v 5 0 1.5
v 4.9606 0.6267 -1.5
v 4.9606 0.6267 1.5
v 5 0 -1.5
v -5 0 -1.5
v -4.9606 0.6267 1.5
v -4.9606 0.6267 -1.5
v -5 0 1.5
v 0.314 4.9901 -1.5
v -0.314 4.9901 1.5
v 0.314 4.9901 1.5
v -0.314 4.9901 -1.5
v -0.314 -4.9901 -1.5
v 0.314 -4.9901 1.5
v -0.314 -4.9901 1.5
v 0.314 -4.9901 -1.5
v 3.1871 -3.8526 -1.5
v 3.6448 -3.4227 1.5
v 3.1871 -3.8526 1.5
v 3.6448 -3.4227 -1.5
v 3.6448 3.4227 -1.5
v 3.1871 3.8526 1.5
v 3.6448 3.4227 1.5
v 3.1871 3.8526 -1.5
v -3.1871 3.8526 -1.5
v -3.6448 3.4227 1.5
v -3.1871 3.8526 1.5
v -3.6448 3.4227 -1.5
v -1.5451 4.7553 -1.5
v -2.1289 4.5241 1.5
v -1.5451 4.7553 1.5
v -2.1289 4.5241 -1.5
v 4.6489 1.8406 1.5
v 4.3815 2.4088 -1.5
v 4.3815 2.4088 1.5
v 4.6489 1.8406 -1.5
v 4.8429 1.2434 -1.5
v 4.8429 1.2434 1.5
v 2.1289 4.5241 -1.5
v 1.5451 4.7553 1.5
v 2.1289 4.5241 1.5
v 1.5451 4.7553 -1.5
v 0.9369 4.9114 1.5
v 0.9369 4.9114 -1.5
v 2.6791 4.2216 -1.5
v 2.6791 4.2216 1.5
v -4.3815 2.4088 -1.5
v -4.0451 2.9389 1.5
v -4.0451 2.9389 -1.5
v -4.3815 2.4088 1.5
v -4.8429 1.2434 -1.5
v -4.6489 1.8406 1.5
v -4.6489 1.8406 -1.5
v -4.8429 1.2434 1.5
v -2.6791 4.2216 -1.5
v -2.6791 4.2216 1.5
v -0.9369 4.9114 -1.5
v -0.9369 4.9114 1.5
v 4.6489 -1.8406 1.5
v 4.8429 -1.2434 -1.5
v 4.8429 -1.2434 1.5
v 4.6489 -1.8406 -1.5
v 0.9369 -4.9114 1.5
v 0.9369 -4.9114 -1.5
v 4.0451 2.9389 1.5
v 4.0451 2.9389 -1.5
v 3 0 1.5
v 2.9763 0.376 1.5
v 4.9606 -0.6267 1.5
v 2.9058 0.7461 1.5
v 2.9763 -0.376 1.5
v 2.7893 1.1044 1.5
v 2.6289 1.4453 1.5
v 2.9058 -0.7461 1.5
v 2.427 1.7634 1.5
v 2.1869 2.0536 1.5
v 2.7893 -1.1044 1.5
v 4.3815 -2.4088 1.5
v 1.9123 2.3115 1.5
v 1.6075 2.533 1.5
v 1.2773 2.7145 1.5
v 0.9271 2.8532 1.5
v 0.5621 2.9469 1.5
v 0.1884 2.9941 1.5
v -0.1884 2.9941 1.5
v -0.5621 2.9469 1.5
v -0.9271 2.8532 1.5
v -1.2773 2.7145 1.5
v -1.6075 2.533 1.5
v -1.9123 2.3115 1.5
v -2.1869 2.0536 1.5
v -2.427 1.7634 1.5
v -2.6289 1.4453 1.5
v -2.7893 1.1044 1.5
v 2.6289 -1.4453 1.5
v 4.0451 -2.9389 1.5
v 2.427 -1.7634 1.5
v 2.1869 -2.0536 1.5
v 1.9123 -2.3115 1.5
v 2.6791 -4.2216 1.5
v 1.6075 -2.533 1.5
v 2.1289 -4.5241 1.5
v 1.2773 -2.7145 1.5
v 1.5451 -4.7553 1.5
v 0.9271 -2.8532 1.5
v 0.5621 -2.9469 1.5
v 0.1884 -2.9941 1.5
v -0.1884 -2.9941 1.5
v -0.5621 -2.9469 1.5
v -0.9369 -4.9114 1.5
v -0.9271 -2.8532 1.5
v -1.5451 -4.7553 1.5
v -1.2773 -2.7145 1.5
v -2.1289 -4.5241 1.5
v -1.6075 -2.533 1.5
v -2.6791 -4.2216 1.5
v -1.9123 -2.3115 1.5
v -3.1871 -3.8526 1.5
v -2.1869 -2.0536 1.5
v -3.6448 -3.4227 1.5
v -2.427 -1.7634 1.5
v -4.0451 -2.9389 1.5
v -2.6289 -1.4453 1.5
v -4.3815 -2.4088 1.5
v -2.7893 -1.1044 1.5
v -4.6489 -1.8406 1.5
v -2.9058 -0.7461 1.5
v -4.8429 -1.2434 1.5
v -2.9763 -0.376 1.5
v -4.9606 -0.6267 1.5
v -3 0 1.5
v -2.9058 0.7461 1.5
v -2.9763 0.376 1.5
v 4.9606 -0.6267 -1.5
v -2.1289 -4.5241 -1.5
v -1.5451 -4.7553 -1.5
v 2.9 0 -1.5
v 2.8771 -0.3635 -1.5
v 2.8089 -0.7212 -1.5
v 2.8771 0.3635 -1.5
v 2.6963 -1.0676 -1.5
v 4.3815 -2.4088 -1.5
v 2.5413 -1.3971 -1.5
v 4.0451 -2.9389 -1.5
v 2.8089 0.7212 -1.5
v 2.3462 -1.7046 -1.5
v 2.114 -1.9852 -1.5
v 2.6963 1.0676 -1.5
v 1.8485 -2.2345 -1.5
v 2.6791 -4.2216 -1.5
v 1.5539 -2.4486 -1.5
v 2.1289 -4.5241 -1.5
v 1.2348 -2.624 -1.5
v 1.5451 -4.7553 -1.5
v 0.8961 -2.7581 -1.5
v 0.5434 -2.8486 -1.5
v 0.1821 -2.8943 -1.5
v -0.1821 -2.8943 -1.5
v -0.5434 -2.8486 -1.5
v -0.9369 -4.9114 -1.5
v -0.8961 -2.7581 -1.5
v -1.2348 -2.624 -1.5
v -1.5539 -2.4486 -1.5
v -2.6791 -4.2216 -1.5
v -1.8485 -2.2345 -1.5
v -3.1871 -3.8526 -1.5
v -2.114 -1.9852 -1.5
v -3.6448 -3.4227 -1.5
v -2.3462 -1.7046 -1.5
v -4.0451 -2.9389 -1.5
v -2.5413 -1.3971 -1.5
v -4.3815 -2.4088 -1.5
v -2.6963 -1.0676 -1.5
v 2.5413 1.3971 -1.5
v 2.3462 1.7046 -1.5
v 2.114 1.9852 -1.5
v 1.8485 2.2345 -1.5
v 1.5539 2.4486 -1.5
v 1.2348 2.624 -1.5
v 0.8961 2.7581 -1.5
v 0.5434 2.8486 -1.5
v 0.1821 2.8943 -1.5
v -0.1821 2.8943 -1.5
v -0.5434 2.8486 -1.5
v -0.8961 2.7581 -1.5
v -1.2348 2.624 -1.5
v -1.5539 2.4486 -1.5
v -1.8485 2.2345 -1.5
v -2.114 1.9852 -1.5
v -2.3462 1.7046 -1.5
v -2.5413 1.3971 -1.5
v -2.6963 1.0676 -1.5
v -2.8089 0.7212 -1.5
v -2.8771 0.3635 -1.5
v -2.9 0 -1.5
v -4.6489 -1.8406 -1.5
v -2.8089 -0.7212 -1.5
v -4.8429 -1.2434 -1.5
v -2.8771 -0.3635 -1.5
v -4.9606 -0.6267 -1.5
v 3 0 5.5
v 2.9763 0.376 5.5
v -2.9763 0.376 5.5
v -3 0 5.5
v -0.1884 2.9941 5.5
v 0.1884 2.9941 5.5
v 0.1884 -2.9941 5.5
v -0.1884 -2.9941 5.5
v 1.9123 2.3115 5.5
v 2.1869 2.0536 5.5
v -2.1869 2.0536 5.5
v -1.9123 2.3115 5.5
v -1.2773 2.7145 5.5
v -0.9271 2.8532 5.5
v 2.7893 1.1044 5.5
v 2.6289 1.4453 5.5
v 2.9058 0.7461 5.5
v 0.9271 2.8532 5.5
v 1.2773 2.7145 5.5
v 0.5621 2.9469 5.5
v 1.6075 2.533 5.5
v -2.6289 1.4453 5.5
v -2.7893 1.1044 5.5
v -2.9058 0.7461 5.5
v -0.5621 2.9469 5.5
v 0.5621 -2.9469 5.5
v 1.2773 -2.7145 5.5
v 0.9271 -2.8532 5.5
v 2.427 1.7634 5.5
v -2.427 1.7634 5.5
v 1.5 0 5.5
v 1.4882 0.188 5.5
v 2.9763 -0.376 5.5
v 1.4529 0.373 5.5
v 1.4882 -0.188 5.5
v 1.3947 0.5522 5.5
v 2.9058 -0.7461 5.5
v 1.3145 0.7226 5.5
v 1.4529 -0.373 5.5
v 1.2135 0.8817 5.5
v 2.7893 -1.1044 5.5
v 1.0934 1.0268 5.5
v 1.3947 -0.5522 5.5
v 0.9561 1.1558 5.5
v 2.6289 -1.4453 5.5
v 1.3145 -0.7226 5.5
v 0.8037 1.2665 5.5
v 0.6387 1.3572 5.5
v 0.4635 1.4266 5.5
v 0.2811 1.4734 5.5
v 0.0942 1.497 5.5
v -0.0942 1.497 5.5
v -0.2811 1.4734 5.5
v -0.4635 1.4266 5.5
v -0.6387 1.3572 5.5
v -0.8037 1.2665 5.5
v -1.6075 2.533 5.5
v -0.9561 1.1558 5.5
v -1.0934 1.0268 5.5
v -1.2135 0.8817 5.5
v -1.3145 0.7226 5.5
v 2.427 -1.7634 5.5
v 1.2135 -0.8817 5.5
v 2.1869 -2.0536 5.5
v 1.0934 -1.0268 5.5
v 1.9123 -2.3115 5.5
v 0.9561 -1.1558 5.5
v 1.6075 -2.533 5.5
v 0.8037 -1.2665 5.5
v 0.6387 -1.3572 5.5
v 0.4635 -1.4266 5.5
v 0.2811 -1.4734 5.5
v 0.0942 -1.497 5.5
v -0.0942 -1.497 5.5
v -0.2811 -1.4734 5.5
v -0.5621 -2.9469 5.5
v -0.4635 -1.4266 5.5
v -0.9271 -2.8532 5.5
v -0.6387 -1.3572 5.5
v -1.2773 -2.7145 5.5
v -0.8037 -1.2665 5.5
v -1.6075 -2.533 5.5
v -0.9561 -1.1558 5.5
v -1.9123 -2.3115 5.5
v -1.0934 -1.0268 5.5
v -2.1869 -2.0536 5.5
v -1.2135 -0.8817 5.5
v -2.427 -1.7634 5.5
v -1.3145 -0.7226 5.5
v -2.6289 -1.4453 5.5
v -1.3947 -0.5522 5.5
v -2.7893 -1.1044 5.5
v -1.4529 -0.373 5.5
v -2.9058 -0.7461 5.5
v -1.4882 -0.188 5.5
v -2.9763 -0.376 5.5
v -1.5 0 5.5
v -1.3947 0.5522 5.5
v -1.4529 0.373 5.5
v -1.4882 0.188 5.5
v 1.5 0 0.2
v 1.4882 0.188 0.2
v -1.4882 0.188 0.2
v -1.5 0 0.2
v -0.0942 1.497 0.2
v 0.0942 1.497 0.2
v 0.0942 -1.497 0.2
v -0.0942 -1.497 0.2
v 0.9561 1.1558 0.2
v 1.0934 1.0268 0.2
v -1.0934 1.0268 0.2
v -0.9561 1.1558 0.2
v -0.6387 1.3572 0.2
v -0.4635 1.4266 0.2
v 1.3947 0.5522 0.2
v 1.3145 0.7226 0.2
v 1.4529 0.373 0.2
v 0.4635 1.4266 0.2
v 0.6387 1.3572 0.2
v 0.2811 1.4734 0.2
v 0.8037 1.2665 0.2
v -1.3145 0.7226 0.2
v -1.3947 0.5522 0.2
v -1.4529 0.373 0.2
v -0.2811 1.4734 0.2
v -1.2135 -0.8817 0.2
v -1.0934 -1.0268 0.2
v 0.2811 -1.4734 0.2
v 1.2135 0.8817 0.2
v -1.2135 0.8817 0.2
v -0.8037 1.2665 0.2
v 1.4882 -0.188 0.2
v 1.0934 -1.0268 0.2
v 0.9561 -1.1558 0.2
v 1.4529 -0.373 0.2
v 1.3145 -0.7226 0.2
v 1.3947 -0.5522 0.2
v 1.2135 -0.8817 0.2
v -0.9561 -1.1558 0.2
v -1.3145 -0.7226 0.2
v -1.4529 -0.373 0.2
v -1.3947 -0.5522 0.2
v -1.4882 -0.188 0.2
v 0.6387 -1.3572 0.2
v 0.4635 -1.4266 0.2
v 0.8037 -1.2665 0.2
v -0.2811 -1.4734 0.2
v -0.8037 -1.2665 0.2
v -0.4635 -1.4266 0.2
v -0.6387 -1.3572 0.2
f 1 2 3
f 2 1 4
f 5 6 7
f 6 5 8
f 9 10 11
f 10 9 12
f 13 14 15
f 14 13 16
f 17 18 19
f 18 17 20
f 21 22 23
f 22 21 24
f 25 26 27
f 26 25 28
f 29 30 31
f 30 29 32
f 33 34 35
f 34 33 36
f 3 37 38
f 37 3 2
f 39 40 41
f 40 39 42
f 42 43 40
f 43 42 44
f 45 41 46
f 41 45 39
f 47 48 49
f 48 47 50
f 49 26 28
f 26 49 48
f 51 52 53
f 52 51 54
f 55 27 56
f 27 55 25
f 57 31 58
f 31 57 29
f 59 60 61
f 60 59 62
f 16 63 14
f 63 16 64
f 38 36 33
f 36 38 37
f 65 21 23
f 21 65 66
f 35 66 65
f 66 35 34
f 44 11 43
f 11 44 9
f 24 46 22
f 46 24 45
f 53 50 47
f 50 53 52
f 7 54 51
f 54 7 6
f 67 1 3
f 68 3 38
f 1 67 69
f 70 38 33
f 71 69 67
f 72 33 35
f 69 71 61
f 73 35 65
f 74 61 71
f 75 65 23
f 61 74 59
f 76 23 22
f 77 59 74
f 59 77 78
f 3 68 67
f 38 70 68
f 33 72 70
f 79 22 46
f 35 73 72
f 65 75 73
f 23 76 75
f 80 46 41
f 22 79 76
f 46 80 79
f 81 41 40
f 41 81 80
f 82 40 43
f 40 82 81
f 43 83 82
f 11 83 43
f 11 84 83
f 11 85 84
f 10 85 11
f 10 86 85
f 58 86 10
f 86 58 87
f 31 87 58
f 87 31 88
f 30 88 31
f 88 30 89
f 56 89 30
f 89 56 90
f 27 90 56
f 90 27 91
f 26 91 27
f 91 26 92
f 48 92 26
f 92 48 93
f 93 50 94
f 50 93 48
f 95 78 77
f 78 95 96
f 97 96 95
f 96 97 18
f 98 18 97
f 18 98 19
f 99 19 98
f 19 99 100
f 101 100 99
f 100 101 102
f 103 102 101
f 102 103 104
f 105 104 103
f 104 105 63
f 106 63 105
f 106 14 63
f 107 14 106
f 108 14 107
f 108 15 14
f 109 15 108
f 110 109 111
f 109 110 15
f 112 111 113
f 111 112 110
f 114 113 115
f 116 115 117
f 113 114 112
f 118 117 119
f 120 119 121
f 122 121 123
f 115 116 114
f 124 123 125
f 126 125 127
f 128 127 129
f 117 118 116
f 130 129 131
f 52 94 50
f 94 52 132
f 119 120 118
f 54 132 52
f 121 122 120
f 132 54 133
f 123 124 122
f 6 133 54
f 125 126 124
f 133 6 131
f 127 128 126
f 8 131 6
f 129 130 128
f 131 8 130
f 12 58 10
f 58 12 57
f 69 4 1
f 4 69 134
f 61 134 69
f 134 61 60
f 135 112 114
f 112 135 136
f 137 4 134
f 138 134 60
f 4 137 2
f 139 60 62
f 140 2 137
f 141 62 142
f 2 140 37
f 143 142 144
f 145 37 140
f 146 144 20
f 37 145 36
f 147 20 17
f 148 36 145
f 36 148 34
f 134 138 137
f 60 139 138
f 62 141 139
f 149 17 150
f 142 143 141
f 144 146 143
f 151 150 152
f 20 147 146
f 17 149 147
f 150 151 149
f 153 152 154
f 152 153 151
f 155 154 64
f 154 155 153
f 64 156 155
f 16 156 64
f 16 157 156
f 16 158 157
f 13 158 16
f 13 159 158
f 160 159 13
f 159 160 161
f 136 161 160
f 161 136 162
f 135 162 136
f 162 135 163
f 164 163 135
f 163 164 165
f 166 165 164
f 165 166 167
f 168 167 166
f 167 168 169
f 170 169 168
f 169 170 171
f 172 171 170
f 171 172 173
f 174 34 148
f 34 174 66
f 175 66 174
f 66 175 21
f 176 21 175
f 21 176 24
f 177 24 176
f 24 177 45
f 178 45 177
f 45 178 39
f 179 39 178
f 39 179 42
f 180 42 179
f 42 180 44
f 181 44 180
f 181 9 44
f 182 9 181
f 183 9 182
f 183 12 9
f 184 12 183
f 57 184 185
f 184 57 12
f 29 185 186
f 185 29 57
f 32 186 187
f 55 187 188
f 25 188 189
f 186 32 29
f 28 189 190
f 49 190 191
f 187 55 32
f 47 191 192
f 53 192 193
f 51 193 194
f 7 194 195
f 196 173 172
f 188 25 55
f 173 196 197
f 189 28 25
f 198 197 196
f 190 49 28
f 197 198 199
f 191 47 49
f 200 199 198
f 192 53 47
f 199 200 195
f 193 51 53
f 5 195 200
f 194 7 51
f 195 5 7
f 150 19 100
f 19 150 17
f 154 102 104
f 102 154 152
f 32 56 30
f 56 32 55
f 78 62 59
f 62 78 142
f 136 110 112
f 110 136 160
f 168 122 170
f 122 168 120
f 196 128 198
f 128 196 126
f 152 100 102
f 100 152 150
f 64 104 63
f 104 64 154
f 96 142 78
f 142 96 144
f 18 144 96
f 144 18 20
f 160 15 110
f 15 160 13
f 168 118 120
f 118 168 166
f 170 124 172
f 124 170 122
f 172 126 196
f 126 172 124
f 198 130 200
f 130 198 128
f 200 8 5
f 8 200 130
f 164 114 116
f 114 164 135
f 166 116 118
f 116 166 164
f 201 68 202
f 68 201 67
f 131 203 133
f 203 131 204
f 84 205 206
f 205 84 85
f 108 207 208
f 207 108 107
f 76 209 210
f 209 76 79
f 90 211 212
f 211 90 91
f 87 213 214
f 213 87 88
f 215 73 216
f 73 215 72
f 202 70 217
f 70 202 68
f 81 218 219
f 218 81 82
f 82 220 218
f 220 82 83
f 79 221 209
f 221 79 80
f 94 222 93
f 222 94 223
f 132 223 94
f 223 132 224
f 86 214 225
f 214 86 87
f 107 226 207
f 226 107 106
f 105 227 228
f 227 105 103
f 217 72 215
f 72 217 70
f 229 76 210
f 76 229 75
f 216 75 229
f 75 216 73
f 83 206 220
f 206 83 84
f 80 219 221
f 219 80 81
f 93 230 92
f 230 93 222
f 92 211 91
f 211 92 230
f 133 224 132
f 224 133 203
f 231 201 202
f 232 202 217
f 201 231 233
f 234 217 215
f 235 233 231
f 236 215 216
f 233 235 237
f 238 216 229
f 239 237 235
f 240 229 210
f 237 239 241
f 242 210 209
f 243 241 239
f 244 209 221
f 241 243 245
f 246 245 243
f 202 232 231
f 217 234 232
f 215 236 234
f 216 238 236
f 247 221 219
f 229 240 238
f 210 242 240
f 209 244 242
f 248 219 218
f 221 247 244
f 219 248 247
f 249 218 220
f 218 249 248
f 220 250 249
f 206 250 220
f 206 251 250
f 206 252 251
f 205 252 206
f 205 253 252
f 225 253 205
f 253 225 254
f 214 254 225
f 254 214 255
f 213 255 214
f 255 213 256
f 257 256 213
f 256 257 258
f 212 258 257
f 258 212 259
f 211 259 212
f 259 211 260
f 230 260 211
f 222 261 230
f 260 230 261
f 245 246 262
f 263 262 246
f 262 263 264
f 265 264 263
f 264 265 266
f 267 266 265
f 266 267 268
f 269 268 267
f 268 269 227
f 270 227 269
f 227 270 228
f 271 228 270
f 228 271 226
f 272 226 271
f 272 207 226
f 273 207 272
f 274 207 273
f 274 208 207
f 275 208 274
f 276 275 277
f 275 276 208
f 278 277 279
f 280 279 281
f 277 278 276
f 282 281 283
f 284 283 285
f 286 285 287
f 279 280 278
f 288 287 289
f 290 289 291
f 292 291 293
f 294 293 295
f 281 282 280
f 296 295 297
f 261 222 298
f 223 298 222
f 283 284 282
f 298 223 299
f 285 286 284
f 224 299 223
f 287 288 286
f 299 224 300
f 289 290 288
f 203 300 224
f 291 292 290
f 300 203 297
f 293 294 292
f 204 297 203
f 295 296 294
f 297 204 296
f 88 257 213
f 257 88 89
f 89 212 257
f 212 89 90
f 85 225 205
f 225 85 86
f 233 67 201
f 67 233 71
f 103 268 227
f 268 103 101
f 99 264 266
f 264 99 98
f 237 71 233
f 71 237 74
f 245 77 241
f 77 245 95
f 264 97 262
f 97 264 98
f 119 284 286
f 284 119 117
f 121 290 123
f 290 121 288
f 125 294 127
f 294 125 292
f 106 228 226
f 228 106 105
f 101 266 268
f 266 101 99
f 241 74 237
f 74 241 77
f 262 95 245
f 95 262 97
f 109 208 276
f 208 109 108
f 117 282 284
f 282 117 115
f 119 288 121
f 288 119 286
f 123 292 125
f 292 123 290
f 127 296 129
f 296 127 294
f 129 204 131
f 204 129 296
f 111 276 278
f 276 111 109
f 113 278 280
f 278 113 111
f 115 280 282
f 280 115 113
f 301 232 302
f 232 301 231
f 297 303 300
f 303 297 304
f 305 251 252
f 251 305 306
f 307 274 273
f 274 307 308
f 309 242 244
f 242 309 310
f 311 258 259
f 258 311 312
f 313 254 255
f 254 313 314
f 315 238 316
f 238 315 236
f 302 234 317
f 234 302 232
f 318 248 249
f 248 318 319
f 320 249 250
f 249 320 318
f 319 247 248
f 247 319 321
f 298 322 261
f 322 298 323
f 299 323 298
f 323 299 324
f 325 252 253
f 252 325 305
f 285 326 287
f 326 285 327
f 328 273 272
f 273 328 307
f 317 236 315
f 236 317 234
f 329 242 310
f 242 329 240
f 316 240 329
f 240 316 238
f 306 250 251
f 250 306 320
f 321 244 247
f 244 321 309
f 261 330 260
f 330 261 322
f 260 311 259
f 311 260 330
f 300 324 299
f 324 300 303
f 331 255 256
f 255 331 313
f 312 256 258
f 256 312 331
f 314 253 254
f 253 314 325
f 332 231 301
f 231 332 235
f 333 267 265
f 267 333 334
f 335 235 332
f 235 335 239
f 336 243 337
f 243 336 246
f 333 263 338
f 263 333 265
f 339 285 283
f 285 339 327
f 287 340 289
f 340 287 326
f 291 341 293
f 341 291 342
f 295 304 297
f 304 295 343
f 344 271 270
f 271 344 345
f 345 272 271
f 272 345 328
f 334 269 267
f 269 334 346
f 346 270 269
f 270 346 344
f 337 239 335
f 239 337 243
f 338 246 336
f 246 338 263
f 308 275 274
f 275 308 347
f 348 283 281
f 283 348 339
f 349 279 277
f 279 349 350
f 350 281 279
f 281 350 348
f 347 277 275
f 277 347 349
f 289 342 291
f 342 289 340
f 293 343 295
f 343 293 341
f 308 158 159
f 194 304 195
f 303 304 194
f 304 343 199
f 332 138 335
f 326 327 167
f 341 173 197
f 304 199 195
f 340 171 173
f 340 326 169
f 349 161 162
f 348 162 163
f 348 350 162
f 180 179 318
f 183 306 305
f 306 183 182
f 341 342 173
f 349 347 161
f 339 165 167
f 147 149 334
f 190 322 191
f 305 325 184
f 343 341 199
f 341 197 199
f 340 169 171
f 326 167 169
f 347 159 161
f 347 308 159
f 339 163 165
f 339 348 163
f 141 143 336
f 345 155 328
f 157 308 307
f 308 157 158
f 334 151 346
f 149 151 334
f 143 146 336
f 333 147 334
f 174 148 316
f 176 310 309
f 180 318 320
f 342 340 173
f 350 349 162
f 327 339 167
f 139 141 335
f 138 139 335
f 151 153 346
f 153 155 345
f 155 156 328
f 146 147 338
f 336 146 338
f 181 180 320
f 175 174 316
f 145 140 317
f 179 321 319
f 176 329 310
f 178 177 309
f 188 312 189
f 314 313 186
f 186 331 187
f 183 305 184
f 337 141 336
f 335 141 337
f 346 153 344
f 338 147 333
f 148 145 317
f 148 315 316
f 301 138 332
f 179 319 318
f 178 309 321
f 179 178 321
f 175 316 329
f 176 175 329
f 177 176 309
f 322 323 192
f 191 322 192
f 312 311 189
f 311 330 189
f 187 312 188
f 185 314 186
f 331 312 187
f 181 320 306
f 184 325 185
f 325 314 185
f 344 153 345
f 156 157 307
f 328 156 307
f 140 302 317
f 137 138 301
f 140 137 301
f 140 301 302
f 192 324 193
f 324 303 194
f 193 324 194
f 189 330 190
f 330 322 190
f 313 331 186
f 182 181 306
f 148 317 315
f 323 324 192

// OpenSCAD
$fn = 50;


difference() {
	union() {
		translate(v = [0, 0, -1.5000000000]) {
			rotate(a = [0, 0, 0]) {
				cylinder(h = 3, r = 5.0000000000);
			}
		}
		translate(v = [0, 0, -1.5000000000]) {
			rotate(a = [0, 0, 0]) {
				cylinder(h = 7, r = 3.0000000000);
			}
		}
	}
	union() {
		translate(v = [0, 0, -125.0000000000]) {
			rotate(a = [0, 0, 0]) {
				cylinder(h = 250, r = 1.5000000000);
			}
		}
		#translate(v = [0, 0, 0.2000000000]) {
			rotate(a = [0, 180, 0]) {
				cylinder(h = 1.7000000000, r1 = 1.5000000000, r2 = 2.9000000000);
			}
		}
		#translate(v = [0, 0, 5.5000000000]) {
			rotate(a = [0, 180, 0]) {
				cylinder(h = 7, r = 1.5000000000);
			}
		}
	}
}
